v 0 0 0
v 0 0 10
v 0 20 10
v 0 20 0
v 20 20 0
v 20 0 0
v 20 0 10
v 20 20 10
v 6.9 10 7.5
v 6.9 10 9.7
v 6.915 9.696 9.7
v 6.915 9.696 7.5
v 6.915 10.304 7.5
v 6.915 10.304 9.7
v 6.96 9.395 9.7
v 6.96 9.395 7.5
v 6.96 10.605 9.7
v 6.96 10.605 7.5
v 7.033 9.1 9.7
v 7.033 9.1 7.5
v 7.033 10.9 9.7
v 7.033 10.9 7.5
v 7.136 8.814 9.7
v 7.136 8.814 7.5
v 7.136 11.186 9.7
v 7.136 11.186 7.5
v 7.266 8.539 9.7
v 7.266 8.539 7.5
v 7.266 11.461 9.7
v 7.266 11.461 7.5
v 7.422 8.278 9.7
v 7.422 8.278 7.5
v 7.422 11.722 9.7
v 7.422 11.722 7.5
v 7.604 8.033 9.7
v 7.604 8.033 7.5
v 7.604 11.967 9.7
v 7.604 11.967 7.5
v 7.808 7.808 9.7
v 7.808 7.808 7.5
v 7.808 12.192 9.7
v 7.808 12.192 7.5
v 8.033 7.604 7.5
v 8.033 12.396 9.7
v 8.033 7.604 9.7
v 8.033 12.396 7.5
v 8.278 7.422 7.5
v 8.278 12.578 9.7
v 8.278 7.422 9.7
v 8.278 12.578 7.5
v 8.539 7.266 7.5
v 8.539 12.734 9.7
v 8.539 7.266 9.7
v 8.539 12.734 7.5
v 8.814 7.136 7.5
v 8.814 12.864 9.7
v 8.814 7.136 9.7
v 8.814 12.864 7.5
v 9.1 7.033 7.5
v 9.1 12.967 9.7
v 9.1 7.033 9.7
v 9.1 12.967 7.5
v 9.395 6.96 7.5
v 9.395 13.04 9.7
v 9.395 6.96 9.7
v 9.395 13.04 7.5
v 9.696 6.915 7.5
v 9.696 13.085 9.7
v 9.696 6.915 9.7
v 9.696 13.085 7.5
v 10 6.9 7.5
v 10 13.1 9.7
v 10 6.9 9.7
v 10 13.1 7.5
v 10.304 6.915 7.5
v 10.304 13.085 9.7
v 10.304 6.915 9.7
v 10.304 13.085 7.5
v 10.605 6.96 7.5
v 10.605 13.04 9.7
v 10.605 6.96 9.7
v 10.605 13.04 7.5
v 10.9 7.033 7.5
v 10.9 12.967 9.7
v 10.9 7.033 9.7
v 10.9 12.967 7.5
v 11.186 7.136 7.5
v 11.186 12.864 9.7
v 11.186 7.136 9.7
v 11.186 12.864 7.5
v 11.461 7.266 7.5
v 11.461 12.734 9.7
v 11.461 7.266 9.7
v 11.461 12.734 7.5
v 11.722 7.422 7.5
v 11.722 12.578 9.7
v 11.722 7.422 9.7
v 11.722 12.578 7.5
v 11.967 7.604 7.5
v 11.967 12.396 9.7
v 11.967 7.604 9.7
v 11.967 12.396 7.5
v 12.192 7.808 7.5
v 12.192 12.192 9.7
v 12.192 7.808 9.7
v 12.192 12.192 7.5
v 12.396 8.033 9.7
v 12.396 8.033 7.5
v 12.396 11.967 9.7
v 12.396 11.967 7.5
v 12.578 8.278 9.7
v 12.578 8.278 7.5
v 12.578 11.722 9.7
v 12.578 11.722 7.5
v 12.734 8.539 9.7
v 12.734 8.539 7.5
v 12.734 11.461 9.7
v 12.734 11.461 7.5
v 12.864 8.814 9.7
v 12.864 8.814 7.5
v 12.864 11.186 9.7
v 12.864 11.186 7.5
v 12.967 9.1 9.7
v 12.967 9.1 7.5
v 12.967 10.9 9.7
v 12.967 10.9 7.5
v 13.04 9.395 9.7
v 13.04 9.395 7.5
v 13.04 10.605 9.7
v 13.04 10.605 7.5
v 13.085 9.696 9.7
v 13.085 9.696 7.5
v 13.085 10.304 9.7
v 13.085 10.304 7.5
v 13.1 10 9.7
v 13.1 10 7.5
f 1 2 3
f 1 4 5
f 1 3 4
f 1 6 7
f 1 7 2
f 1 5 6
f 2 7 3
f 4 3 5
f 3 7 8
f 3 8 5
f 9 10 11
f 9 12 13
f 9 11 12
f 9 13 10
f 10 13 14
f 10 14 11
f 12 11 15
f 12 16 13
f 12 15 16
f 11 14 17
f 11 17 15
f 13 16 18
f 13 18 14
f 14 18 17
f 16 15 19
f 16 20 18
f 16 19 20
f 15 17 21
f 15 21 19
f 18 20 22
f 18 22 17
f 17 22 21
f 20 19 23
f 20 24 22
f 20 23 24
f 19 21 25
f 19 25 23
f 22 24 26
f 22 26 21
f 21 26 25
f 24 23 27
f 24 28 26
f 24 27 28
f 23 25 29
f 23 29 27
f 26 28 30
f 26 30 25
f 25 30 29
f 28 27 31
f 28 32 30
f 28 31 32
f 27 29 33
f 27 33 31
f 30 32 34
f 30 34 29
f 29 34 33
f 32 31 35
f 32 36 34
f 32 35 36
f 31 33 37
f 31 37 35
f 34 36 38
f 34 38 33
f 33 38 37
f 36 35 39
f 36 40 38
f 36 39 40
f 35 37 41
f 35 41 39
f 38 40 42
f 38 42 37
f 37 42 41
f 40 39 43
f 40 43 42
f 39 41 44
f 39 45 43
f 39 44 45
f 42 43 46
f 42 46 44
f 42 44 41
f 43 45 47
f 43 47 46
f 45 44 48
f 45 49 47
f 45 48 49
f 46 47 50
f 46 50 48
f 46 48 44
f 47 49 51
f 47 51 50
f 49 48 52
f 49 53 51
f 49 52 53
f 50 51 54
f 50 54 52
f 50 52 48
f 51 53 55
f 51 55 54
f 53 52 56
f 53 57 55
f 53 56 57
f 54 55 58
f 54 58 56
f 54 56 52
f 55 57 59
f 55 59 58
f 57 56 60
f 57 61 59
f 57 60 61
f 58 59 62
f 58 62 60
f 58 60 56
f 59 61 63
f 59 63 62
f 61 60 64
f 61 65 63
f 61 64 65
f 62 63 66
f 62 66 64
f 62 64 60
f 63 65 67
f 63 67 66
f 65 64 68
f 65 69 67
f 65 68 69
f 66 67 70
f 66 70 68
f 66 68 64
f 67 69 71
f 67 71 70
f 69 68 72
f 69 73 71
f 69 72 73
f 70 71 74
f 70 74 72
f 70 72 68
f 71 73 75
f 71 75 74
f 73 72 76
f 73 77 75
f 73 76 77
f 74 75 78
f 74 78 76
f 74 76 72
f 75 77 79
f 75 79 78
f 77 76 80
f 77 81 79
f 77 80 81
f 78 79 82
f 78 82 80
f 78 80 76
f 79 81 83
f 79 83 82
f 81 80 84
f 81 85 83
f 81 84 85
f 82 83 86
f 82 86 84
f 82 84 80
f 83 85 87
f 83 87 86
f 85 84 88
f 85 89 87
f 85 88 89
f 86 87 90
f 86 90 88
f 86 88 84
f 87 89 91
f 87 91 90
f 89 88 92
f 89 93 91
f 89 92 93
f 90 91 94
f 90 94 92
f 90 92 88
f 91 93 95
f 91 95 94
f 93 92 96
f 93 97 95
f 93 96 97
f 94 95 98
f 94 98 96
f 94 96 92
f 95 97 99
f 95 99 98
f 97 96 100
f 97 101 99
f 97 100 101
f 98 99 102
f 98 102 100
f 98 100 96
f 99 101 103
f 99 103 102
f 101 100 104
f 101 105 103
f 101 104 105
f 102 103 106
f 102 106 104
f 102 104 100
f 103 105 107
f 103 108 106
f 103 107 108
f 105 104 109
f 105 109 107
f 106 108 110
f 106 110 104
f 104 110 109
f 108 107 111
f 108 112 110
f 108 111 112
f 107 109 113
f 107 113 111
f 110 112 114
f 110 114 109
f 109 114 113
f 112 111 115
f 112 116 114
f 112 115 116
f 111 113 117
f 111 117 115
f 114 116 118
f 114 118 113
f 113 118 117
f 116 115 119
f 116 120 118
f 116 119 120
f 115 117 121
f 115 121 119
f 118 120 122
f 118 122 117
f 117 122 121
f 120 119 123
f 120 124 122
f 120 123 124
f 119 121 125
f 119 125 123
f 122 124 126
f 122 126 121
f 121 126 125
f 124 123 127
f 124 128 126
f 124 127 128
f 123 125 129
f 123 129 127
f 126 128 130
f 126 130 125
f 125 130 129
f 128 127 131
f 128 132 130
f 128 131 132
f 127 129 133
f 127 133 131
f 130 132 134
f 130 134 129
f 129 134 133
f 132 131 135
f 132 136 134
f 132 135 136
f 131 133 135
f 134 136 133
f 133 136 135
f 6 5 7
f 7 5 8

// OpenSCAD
// simple form piece for testing and learning
// 06.09.2025 Sebastian Weigl

// set the fregment sizes
$fn = $preview ? 48 : 64;
// declare vars
//  first body
fir_body_width=20;
fir_body_depth=20;
fir_body_height=10;
fir_body_diameter=6.2;
//  second body
sec_body_width=20;
sec_body_depth=20;
sec_body_height=10;
sec_body_diameter=6.2;

// bottom piece
difference() {
color("blue")
cube([fir_body_width,fir_body_depth,fir_body_height],false);

color("red")
translate([10,10,fir_body_height-2.5])
  #cylinder(h=2.2,d=fir_body_diameter,center=false);
}
